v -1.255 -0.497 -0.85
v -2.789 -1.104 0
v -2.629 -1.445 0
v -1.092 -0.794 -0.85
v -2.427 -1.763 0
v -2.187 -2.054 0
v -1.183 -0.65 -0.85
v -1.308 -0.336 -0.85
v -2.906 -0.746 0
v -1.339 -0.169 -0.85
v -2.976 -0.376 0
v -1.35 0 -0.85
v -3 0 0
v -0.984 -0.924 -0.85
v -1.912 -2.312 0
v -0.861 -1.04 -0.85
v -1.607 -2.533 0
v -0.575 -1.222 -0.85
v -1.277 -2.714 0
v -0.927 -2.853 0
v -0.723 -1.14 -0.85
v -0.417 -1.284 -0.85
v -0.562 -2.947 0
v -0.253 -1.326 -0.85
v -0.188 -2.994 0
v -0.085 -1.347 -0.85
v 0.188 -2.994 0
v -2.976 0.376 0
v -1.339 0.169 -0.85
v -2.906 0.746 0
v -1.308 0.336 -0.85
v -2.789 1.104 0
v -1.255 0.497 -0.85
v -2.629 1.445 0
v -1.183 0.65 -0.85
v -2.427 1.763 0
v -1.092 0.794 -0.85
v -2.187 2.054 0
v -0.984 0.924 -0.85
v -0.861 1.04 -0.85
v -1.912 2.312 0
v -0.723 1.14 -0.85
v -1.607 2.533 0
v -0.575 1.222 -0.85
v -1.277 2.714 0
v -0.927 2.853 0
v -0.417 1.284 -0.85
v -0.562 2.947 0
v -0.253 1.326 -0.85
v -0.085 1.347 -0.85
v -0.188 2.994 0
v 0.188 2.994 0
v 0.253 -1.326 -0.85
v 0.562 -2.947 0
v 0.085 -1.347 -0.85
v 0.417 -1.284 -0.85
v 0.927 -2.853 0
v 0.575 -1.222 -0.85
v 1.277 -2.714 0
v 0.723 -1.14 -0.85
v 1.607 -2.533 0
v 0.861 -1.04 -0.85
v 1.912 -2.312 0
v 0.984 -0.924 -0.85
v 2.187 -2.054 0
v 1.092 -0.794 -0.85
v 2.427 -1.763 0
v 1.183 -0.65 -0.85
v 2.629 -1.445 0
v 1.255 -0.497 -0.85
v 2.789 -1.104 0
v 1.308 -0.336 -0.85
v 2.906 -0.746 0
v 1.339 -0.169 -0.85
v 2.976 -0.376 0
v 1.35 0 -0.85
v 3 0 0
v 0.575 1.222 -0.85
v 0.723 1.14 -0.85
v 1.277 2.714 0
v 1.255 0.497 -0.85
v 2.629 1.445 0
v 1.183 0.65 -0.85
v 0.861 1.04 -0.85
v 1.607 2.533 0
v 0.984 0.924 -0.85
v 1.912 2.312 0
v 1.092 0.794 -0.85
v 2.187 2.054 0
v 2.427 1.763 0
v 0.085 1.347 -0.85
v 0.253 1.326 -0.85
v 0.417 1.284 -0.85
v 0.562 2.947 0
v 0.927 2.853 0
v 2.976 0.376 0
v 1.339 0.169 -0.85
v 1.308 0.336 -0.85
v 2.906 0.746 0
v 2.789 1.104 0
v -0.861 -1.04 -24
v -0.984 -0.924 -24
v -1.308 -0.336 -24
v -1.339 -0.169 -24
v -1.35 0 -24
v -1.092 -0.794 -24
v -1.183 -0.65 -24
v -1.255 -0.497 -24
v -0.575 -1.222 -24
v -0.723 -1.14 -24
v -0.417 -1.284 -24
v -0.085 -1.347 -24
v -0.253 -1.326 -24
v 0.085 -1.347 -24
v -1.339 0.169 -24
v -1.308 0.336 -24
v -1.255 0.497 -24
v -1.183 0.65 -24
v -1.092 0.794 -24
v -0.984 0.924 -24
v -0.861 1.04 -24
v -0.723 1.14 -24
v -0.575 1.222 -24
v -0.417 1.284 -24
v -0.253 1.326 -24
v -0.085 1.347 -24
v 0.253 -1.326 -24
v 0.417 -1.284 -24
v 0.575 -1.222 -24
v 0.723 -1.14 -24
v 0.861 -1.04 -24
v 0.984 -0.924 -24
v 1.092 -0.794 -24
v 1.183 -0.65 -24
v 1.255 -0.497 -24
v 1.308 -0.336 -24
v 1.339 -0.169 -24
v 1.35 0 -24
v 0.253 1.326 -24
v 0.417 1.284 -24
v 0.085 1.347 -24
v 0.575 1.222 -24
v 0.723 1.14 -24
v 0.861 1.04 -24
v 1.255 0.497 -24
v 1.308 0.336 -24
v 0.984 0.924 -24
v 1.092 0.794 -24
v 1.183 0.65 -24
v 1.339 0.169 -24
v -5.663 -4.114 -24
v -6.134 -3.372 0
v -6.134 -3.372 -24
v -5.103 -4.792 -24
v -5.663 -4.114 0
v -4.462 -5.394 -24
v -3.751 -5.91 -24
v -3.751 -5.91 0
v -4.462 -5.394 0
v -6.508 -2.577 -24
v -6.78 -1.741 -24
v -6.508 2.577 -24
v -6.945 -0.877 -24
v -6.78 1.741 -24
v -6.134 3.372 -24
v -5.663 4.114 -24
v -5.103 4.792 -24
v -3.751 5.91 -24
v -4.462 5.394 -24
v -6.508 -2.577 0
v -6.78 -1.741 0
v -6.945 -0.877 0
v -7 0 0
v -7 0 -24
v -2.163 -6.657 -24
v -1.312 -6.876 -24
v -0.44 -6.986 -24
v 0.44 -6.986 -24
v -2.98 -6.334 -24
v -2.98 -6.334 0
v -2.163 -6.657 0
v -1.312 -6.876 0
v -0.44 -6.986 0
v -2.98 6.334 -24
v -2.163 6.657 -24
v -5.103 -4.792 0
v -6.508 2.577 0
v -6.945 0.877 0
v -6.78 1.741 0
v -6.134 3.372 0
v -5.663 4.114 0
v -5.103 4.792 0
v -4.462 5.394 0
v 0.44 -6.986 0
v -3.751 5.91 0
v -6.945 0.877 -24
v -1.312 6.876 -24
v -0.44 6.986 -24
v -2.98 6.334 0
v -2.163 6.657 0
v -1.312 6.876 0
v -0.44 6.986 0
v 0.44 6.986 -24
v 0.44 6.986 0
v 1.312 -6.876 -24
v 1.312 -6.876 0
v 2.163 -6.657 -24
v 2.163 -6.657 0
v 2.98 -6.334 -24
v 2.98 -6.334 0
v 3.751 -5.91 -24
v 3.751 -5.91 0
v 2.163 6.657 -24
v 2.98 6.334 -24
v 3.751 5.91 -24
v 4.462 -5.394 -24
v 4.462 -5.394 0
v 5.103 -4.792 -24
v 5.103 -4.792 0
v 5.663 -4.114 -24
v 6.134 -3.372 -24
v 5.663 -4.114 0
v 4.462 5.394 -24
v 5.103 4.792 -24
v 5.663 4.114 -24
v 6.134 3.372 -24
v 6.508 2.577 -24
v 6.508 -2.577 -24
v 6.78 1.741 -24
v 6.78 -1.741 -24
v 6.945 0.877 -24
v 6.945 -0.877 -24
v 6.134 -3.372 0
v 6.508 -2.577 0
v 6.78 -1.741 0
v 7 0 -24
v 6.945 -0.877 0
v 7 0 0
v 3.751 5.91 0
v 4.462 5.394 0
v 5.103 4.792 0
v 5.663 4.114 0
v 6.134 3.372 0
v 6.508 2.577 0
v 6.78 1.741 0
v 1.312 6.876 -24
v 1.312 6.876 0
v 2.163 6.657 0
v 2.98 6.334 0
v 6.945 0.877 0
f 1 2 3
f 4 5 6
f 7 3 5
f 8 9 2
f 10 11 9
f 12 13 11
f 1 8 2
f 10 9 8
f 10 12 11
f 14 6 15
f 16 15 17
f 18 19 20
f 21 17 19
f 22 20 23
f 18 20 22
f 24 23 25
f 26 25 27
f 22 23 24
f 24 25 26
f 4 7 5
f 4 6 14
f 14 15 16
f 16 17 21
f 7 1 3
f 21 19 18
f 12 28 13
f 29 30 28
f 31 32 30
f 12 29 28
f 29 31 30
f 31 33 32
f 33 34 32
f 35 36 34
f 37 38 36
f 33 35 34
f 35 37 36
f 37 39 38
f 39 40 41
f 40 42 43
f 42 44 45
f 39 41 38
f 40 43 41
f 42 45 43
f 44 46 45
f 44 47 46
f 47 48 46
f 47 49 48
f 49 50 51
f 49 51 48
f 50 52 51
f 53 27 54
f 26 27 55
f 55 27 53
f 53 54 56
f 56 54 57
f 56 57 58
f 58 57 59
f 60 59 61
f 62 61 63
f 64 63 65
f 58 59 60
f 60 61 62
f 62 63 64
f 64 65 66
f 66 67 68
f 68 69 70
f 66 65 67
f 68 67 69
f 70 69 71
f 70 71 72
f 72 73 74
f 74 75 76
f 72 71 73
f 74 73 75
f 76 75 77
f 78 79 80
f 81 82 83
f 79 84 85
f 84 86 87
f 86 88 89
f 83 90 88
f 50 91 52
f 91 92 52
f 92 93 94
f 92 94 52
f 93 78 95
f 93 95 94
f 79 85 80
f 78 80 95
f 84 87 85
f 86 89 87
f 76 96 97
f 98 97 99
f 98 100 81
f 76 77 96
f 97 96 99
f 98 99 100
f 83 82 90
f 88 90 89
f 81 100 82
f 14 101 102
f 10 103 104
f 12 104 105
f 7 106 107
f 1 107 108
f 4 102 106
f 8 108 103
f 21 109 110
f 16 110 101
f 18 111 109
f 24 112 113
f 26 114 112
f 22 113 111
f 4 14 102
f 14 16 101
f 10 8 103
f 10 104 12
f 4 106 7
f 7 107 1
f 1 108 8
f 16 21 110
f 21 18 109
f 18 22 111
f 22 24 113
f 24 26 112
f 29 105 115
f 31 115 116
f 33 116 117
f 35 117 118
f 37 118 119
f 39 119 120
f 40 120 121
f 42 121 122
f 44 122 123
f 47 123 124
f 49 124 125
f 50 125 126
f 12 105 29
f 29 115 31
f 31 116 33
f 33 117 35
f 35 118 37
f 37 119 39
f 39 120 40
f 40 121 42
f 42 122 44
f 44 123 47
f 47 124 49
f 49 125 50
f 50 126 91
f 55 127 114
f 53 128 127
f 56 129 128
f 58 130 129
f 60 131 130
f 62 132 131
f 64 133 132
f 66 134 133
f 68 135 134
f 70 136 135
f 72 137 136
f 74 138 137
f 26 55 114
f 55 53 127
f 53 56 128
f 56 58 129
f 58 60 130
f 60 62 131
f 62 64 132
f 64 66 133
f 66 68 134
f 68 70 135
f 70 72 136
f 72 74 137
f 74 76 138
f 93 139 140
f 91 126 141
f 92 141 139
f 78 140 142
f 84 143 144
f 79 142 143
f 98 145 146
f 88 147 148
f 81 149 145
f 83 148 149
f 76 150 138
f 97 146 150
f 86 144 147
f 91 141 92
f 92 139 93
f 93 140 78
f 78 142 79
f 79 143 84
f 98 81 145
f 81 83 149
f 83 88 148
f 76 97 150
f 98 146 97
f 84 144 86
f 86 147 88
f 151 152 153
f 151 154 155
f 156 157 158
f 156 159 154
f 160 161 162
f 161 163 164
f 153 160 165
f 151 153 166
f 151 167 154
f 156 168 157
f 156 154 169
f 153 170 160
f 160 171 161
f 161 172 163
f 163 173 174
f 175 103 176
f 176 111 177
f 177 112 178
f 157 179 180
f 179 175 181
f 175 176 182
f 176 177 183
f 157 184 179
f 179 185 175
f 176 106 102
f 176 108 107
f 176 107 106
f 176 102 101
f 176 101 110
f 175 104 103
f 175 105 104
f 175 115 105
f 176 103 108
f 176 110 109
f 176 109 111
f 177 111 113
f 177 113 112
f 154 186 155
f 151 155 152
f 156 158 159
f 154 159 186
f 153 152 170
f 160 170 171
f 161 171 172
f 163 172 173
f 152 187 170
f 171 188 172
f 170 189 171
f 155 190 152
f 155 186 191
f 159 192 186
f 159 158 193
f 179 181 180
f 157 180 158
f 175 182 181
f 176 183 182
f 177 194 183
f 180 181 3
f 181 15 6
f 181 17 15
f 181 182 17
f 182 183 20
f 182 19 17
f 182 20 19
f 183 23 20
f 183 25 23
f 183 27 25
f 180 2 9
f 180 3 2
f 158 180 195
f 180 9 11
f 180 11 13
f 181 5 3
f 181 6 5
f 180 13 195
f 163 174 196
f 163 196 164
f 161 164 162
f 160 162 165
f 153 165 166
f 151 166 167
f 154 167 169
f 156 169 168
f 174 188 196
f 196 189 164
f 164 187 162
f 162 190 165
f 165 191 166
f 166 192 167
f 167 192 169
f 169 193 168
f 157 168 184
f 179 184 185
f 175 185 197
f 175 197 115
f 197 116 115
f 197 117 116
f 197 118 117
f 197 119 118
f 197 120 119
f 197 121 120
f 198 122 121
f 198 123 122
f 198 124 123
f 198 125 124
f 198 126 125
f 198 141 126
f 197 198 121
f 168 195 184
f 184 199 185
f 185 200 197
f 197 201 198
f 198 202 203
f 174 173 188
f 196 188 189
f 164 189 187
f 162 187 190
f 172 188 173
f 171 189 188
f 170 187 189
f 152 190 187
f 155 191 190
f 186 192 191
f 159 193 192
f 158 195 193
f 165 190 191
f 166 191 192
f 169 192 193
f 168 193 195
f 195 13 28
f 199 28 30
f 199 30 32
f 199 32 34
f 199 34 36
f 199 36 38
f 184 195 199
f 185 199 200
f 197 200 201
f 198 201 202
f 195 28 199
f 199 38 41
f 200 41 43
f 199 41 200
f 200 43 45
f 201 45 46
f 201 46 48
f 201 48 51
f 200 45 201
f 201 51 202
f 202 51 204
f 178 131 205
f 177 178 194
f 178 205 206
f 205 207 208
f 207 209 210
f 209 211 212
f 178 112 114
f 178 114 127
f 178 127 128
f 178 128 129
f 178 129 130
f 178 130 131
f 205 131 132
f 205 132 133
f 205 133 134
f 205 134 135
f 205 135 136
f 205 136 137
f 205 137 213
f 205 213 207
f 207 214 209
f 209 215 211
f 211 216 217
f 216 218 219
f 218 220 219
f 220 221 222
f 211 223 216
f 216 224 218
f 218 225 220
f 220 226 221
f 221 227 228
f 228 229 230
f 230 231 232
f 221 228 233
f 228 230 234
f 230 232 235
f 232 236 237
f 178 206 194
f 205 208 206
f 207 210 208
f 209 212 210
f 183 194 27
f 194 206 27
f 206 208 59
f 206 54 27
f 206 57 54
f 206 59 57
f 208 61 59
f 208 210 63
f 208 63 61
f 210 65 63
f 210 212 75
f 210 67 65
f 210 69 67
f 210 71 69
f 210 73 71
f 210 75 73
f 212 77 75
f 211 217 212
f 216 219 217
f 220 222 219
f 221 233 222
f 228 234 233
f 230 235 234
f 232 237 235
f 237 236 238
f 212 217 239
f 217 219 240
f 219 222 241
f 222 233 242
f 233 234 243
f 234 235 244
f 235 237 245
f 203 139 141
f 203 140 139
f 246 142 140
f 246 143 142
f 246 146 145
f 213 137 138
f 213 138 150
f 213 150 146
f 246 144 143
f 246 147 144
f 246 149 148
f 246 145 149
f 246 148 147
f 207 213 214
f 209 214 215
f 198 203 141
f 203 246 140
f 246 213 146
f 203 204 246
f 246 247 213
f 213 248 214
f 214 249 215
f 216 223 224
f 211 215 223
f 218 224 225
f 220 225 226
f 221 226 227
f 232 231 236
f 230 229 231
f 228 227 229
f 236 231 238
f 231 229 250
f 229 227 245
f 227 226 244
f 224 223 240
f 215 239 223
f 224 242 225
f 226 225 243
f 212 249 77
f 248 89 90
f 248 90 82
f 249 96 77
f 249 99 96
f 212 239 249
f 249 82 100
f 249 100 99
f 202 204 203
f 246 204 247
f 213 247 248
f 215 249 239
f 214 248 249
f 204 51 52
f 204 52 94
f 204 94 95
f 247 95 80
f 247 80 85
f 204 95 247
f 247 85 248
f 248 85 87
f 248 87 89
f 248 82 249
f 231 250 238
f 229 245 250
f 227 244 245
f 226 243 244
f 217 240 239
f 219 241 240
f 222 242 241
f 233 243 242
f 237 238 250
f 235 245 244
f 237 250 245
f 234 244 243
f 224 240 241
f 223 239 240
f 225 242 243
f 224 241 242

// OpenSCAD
$fn = 50;

difference() {
	union() {
		translate(v = [0, 0, -24.0]) {
			cylinder(h = 24, r = 7.0);
		}
	}
	union() {
		translate(v = [0, 0, 0]) {
			rotate(a = [0, 0, 0]) {
				difference() {
					union() {
						translate(v = [0, 0, -27.0]) {
							cylinder(h = 27, r = 1.0);
						}
						translate(v = [0, 0, -0.85]) {
							cylinder(h = 0.85, r1 = 1.35, r2 = 3.0);
						}
						translate(v = [0, 0, -27.0]) {
							cylinder(h = 27, r = 1.35);
						}
						translate(v = [0, 0, -27.0]) {
							cylinder(h = 27, r = 1.0);
						}
					}
					union();
				}
			}
		}
	}
}
